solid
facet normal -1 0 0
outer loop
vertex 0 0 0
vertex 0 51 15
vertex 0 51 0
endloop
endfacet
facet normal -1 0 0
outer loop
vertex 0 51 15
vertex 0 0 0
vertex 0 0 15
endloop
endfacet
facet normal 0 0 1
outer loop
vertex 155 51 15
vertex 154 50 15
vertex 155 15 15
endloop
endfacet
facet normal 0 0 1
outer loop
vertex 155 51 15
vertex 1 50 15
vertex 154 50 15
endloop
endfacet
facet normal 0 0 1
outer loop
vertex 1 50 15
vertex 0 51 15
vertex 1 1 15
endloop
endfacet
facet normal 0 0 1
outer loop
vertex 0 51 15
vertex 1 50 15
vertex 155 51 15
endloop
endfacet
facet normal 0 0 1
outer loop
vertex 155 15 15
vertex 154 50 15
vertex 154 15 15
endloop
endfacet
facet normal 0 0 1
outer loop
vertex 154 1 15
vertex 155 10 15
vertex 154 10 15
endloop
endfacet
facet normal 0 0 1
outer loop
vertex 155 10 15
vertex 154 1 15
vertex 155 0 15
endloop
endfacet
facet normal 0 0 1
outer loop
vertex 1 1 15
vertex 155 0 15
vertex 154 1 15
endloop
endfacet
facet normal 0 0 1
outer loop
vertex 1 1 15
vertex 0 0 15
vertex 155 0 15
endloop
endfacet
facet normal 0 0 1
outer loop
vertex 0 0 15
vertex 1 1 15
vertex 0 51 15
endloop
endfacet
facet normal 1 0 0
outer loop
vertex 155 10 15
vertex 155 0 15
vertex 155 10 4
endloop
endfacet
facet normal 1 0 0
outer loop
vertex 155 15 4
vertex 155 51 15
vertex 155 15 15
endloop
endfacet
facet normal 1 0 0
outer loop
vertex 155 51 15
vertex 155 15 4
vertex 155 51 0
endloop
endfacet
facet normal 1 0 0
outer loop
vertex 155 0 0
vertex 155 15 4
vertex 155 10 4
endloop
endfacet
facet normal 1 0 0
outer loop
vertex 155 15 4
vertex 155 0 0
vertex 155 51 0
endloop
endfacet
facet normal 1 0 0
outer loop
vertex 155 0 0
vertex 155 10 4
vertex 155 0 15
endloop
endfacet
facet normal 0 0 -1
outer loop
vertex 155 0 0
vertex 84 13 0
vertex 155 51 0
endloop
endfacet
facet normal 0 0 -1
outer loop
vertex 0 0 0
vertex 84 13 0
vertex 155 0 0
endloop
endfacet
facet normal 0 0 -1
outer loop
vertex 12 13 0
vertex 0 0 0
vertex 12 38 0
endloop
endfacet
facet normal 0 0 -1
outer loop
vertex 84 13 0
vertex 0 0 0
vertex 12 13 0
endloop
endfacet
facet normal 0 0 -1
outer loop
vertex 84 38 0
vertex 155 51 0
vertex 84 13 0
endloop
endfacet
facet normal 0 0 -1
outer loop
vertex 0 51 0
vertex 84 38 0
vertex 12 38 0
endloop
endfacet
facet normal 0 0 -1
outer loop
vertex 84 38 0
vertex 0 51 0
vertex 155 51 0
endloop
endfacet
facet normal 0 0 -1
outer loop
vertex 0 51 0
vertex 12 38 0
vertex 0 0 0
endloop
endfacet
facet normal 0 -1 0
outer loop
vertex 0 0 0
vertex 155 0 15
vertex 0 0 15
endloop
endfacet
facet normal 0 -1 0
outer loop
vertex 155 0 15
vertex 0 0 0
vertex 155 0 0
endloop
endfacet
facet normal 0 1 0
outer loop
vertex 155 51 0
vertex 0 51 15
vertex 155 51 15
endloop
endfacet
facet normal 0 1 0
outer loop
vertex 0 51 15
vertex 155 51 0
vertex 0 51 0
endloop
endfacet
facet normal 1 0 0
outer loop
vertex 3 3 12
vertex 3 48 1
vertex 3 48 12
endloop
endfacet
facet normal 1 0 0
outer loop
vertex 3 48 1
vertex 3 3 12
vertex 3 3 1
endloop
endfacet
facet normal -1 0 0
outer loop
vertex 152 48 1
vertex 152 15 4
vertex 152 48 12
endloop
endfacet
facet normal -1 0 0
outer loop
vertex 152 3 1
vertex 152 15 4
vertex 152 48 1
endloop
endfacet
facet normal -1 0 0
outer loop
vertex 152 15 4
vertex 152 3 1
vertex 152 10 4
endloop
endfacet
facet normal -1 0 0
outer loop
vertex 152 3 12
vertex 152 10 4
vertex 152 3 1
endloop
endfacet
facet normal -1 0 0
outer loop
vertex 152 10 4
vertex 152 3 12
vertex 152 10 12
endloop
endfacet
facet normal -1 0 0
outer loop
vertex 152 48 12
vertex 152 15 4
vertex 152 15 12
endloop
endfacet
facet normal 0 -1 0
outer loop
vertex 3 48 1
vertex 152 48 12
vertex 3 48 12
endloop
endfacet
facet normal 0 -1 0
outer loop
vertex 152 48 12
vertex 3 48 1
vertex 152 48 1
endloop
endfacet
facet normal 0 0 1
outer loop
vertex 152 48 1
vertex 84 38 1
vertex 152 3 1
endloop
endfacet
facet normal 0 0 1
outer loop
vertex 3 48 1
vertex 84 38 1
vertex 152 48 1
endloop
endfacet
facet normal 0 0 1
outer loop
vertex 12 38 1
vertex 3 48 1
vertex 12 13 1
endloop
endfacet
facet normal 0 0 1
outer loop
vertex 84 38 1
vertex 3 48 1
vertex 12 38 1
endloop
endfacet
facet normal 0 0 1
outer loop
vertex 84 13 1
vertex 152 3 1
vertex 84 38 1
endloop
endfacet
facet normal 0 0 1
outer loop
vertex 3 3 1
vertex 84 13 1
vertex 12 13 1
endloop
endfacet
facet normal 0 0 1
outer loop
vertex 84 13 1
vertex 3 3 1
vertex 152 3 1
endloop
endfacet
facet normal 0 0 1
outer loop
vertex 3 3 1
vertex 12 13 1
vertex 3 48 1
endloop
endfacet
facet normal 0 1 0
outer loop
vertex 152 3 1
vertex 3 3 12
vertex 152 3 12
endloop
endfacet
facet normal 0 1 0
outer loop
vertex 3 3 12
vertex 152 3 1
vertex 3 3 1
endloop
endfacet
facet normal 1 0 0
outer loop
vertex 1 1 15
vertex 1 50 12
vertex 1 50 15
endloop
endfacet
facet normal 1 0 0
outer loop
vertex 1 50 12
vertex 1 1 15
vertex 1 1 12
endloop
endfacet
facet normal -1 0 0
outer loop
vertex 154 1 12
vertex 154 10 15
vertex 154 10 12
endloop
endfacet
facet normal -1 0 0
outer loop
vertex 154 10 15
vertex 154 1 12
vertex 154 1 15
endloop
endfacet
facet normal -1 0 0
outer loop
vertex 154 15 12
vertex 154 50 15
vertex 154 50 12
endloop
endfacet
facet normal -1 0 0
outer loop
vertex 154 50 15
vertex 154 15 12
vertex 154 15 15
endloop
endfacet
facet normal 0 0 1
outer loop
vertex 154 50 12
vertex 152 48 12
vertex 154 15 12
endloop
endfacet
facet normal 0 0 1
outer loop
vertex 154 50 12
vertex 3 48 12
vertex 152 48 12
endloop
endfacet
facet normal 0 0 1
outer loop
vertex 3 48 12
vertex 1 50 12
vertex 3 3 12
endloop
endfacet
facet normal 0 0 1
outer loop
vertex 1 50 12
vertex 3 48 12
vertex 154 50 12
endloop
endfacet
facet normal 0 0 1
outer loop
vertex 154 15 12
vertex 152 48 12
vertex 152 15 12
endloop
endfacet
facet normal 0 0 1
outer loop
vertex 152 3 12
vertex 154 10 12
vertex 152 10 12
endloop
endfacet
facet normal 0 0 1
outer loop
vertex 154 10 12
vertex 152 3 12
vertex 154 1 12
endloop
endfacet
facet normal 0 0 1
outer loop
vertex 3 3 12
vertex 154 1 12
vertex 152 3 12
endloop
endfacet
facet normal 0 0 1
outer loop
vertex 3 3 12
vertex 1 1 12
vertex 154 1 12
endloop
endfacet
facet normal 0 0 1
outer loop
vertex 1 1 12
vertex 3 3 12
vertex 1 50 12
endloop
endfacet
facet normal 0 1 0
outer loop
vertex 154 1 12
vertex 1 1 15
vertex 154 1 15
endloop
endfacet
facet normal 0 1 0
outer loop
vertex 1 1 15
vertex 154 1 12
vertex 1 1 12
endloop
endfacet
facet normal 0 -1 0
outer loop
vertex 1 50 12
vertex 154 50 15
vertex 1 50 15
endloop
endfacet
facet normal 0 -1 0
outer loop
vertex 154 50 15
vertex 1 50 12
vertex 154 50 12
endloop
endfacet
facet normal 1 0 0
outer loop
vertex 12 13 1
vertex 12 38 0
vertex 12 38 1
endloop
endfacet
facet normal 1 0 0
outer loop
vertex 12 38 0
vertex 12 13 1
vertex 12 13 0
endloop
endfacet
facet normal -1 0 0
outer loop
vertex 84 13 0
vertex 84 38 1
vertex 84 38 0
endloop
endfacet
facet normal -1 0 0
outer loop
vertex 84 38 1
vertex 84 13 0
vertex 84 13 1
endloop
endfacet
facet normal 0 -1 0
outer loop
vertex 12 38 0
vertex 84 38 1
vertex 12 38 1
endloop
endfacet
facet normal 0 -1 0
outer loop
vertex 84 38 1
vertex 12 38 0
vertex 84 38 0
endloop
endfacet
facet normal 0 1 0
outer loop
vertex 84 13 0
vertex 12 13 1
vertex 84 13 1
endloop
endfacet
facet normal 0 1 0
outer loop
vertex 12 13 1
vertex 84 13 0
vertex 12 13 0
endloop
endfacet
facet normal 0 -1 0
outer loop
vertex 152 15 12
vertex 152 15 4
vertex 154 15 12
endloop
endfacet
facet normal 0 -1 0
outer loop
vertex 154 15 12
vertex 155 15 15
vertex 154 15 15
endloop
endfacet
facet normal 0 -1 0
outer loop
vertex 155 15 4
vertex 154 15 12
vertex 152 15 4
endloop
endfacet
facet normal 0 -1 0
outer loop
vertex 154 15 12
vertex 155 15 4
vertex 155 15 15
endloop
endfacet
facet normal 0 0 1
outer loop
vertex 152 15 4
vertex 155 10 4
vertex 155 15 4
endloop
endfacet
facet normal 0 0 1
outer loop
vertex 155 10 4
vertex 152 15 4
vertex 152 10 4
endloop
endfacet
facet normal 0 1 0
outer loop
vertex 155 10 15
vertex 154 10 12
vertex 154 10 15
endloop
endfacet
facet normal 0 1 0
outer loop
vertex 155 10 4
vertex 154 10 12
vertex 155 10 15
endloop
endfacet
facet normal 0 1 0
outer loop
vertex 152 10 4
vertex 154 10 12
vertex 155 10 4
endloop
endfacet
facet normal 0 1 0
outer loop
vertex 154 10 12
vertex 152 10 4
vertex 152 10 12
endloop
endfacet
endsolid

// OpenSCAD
difference() {
    // outside
    cube([155,51,15]);
    // inside
    translate([3,3,1]) {
        cube([149,45,15]);
    }
    // rim
    translate([1,1,12]) {
        cube([153,49,5]);
    }
    // lcd cutout
    translate([12,13,-1]) {
        cube([72,25,5]);
    }
    // cable cutout
    translate([150,10,4]) {
        cube([20,5,15]);
    }
}
